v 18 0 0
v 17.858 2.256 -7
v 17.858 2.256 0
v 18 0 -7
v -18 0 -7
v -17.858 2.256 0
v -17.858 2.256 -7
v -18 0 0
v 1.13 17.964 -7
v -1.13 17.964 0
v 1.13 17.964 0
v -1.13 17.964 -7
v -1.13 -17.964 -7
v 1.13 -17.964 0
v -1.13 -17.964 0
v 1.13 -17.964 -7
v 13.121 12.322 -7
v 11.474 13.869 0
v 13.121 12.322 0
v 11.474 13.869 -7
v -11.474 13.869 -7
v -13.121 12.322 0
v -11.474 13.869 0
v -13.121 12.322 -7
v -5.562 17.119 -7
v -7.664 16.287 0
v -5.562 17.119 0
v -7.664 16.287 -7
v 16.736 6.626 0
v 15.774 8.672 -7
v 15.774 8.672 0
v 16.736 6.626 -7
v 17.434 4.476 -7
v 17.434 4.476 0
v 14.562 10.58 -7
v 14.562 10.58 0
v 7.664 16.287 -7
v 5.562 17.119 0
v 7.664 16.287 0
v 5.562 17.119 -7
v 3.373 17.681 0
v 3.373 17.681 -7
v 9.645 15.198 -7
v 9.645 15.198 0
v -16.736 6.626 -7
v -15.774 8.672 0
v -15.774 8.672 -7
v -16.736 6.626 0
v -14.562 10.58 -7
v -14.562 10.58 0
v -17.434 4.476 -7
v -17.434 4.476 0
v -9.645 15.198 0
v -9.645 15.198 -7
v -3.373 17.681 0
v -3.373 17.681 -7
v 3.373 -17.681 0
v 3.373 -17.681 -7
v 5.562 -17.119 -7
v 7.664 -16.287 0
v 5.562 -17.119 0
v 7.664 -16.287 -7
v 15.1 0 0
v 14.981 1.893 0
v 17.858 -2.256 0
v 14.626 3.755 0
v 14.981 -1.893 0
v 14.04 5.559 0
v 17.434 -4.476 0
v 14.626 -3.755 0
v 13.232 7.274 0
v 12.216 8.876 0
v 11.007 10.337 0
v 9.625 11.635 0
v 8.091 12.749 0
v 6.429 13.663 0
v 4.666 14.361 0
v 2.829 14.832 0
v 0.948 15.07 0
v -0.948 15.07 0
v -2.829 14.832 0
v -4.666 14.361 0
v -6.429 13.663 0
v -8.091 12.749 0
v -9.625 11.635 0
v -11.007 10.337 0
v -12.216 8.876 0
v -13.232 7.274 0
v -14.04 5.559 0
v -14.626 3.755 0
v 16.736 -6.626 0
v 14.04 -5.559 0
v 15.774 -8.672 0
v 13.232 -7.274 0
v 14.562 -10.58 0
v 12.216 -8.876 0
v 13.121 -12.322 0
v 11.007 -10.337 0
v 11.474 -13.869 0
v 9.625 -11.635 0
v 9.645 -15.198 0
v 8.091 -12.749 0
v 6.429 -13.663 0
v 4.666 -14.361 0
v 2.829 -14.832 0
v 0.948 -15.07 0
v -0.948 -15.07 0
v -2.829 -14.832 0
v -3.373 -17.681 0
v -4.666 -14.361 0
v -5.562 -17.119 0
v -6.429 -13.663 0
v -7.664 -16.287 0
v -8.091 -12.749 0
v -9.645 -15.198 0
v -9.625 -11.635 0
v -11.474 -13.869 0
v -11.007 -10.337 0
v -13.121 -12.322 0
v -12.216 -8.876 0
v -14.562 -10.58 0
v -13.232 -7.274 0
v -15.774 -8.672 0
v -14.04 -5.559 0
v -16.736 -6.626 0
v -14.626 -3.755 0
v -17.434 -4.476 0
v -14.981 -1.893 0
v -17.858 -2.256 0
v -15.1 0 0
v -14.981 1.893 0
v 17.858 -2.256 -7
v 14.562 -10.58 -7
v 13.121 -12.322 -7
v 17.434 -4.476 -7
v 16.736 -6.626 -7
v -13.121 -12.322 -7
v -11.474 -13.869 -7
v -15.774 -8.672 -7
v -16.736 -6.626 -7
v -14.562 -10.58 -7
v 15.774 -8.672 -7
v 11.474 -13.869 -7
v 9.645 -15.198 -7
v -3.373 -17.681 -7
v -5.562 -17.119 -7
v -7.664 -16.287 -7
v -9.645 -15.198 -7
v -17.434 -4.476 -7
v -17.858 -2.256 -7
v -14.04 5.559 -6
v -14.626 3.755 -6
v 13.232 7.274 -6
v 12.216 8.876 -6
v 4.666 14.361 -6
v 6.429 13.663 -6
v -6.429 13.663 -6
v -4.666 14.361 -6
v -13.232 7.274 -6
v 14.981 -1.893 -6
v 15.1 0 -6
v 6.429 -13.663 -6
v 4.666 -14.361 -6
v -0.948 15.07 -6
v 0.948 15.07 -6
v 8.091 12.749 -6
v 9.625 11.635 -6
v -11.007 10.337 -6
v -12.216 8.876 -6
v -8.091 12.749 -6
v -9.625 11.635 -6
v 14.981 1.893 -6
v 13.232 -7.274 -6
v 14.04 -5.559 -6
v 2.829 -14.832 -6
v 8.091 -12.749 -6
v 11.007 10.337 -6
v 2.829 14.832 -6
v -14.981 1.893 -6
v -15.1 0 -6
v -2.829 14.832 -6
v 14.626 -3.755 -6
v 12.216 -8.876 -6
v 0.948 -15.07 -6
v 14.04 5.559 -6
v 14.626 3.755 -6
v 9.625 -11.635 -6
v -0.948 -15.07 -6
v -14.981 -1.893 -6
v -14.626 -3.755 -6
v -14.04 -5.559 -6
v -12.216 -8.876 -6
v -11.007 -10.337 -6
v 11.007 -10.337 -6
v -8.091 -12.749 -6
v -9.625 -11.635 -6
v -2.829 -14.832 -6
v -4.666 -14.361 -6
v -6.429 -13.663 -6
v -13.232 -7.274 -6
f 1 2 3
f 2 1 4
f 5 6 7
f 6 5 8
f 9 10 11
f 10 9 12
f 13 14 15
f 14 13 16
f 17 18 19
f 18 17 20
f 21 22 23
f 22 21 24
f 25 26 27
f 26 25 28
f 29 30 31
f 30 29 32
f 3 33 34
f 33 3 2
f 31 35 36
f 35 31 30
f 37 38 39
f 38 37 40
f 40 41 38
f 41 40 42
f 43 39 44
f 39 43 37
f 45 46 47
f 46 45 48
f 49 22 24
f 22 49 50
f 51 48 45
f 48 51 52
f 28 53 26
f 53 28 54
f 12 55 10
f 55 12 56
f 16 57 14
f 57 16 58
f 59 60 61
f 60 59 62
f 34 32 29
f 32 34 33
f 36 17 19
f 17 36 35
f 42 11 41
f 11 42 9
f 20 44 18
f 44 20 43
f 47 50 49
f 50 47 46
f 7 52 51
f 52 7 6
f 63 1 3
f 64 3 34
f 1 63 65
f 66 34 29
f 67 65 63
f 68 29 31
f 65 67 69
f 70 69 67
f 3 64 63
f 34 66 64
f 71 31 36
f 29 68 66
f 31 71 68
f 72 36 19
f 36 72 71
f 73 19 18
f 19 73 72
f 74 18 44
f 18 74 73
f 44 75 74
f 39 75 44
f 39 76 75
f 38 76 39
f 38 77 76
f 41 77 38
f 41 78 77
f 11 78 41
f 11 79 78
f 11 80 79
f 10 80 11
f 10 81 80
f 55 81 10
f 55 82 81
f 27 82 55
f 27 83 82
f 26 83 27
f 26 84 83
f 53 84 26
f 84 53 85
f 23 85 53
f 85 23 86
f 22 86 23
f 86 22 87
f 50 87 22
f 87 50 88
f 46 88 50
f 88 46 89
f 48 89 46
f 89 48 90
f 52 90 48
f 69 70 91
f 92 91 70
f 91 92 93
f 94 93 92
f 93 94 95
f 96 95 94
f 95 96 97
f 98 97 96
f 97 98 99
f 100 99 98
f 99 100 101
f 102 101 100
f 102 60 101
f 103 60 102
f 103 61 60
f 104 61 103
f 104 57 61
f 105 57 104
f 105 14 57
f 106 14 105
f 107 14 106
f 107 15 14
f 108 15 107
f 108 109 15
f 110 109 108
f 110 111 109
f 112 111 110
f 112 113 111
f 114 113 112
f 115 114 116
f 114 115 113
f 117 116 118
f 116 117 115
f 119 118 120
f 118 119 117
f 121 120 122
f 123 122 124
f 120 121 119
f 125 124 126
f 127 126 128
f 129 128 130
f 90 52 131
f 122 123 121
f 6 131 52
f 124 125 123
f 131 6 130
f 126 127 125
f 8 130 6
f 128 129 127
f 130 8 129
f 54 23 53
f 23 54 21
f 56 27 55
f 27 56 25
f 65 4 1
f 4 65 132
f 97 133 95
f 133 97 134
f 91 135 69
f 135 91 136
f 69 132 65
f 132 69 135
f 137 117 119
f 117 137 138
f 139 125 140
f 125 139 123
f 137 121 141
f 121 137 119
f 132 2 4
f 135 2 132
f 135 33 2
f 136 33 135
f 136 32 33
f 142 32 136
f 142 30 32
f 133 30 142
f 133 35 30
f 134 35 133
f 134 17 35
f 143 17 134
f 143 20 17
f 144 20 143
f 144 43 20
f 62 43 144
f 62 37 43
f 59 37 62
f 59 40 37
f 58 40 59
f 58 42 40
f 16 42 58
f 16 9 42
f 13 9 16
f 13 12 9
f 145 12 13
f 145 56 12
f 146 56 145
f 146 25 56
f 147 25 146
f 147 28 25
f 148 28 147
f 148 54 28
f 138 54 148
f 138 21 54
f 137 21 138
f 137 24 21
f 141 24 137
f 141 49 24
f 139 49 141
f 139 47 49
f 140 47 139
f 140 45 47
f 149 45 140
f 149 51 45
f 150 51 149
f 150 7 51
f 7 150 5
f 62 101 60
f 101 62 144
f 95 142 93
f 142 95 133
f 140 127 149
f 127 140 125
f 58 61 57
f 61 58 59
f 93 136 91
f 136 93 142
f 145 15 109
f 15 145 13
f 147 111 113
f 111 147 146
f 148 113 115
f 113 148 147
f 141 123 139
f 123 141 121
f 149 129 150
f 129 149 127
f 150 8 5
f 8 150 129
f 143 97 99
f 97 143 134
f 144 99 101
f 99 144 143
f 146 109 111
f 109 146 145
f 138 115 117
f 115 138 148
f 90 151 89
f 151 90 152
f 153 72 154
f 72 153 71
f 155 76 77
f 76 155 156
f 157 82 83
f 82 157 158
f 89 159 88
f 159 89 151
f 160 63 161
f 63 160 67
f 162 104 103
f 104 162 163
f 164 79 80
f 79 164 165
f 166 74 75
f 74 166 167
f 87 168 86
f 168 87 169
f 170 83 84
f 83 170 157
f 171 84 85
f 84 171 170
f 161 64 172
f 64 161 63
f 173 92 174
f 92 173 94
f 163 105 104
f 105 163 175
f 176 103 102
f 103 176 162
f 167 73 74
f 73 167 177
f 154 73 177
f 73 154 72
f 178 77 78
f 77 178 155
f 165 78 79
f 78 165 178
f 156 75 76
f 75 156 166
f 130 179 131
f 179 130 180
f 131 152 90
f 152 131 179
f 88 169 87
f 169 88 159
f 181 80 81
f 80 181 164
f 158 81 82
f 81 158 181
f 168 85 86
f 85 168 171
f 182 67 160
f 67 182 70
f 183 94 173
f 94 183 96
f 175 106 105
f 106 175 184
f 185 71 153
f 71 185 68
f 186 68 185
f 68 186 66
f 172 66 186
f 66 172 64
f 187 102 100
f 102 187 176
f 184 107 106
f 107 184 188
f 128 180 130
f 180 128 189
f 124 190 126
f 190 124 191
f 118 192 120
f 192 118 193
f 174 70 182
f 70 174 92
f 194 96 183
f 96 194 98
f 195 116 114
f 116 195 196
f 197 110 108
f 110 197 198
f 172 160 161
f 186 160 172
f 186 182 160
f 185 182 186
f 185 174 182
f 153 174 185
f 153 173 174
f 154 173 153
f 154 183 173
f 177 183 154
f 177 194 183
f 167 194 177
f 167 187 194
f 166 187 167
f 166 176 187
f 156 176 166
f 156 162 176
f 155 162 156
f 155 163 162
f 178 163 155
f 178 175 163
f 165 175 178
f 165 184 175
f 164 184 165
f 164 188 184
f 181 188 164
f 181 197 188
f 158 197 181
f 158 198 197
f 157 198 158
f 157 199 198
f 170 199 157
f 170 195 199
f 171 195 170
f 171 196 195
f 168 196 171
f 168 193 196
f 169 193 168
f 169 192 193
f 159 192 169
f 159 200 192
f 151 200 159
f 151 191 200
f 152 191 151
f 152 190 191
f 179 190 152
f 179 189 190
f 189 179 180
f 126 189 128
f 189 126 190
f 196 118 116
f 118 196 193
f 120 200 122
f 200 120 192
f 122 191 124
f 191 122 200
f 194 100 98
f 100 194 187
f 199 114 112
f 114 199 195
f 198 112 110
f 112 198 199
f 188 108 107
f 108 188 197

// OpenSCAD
$fn = 50;


difference() {
	union() {
		translate(v = [0, 0, -7.0000000000]) {
			cylinder(h = 7, r = 18.0000000000);
		}
	}
	union() {
		#translate(v = [0, 0, -6.0000000000]) {
			cylinder(h = 6, r = 15.1000000000);
		}
	}
}
